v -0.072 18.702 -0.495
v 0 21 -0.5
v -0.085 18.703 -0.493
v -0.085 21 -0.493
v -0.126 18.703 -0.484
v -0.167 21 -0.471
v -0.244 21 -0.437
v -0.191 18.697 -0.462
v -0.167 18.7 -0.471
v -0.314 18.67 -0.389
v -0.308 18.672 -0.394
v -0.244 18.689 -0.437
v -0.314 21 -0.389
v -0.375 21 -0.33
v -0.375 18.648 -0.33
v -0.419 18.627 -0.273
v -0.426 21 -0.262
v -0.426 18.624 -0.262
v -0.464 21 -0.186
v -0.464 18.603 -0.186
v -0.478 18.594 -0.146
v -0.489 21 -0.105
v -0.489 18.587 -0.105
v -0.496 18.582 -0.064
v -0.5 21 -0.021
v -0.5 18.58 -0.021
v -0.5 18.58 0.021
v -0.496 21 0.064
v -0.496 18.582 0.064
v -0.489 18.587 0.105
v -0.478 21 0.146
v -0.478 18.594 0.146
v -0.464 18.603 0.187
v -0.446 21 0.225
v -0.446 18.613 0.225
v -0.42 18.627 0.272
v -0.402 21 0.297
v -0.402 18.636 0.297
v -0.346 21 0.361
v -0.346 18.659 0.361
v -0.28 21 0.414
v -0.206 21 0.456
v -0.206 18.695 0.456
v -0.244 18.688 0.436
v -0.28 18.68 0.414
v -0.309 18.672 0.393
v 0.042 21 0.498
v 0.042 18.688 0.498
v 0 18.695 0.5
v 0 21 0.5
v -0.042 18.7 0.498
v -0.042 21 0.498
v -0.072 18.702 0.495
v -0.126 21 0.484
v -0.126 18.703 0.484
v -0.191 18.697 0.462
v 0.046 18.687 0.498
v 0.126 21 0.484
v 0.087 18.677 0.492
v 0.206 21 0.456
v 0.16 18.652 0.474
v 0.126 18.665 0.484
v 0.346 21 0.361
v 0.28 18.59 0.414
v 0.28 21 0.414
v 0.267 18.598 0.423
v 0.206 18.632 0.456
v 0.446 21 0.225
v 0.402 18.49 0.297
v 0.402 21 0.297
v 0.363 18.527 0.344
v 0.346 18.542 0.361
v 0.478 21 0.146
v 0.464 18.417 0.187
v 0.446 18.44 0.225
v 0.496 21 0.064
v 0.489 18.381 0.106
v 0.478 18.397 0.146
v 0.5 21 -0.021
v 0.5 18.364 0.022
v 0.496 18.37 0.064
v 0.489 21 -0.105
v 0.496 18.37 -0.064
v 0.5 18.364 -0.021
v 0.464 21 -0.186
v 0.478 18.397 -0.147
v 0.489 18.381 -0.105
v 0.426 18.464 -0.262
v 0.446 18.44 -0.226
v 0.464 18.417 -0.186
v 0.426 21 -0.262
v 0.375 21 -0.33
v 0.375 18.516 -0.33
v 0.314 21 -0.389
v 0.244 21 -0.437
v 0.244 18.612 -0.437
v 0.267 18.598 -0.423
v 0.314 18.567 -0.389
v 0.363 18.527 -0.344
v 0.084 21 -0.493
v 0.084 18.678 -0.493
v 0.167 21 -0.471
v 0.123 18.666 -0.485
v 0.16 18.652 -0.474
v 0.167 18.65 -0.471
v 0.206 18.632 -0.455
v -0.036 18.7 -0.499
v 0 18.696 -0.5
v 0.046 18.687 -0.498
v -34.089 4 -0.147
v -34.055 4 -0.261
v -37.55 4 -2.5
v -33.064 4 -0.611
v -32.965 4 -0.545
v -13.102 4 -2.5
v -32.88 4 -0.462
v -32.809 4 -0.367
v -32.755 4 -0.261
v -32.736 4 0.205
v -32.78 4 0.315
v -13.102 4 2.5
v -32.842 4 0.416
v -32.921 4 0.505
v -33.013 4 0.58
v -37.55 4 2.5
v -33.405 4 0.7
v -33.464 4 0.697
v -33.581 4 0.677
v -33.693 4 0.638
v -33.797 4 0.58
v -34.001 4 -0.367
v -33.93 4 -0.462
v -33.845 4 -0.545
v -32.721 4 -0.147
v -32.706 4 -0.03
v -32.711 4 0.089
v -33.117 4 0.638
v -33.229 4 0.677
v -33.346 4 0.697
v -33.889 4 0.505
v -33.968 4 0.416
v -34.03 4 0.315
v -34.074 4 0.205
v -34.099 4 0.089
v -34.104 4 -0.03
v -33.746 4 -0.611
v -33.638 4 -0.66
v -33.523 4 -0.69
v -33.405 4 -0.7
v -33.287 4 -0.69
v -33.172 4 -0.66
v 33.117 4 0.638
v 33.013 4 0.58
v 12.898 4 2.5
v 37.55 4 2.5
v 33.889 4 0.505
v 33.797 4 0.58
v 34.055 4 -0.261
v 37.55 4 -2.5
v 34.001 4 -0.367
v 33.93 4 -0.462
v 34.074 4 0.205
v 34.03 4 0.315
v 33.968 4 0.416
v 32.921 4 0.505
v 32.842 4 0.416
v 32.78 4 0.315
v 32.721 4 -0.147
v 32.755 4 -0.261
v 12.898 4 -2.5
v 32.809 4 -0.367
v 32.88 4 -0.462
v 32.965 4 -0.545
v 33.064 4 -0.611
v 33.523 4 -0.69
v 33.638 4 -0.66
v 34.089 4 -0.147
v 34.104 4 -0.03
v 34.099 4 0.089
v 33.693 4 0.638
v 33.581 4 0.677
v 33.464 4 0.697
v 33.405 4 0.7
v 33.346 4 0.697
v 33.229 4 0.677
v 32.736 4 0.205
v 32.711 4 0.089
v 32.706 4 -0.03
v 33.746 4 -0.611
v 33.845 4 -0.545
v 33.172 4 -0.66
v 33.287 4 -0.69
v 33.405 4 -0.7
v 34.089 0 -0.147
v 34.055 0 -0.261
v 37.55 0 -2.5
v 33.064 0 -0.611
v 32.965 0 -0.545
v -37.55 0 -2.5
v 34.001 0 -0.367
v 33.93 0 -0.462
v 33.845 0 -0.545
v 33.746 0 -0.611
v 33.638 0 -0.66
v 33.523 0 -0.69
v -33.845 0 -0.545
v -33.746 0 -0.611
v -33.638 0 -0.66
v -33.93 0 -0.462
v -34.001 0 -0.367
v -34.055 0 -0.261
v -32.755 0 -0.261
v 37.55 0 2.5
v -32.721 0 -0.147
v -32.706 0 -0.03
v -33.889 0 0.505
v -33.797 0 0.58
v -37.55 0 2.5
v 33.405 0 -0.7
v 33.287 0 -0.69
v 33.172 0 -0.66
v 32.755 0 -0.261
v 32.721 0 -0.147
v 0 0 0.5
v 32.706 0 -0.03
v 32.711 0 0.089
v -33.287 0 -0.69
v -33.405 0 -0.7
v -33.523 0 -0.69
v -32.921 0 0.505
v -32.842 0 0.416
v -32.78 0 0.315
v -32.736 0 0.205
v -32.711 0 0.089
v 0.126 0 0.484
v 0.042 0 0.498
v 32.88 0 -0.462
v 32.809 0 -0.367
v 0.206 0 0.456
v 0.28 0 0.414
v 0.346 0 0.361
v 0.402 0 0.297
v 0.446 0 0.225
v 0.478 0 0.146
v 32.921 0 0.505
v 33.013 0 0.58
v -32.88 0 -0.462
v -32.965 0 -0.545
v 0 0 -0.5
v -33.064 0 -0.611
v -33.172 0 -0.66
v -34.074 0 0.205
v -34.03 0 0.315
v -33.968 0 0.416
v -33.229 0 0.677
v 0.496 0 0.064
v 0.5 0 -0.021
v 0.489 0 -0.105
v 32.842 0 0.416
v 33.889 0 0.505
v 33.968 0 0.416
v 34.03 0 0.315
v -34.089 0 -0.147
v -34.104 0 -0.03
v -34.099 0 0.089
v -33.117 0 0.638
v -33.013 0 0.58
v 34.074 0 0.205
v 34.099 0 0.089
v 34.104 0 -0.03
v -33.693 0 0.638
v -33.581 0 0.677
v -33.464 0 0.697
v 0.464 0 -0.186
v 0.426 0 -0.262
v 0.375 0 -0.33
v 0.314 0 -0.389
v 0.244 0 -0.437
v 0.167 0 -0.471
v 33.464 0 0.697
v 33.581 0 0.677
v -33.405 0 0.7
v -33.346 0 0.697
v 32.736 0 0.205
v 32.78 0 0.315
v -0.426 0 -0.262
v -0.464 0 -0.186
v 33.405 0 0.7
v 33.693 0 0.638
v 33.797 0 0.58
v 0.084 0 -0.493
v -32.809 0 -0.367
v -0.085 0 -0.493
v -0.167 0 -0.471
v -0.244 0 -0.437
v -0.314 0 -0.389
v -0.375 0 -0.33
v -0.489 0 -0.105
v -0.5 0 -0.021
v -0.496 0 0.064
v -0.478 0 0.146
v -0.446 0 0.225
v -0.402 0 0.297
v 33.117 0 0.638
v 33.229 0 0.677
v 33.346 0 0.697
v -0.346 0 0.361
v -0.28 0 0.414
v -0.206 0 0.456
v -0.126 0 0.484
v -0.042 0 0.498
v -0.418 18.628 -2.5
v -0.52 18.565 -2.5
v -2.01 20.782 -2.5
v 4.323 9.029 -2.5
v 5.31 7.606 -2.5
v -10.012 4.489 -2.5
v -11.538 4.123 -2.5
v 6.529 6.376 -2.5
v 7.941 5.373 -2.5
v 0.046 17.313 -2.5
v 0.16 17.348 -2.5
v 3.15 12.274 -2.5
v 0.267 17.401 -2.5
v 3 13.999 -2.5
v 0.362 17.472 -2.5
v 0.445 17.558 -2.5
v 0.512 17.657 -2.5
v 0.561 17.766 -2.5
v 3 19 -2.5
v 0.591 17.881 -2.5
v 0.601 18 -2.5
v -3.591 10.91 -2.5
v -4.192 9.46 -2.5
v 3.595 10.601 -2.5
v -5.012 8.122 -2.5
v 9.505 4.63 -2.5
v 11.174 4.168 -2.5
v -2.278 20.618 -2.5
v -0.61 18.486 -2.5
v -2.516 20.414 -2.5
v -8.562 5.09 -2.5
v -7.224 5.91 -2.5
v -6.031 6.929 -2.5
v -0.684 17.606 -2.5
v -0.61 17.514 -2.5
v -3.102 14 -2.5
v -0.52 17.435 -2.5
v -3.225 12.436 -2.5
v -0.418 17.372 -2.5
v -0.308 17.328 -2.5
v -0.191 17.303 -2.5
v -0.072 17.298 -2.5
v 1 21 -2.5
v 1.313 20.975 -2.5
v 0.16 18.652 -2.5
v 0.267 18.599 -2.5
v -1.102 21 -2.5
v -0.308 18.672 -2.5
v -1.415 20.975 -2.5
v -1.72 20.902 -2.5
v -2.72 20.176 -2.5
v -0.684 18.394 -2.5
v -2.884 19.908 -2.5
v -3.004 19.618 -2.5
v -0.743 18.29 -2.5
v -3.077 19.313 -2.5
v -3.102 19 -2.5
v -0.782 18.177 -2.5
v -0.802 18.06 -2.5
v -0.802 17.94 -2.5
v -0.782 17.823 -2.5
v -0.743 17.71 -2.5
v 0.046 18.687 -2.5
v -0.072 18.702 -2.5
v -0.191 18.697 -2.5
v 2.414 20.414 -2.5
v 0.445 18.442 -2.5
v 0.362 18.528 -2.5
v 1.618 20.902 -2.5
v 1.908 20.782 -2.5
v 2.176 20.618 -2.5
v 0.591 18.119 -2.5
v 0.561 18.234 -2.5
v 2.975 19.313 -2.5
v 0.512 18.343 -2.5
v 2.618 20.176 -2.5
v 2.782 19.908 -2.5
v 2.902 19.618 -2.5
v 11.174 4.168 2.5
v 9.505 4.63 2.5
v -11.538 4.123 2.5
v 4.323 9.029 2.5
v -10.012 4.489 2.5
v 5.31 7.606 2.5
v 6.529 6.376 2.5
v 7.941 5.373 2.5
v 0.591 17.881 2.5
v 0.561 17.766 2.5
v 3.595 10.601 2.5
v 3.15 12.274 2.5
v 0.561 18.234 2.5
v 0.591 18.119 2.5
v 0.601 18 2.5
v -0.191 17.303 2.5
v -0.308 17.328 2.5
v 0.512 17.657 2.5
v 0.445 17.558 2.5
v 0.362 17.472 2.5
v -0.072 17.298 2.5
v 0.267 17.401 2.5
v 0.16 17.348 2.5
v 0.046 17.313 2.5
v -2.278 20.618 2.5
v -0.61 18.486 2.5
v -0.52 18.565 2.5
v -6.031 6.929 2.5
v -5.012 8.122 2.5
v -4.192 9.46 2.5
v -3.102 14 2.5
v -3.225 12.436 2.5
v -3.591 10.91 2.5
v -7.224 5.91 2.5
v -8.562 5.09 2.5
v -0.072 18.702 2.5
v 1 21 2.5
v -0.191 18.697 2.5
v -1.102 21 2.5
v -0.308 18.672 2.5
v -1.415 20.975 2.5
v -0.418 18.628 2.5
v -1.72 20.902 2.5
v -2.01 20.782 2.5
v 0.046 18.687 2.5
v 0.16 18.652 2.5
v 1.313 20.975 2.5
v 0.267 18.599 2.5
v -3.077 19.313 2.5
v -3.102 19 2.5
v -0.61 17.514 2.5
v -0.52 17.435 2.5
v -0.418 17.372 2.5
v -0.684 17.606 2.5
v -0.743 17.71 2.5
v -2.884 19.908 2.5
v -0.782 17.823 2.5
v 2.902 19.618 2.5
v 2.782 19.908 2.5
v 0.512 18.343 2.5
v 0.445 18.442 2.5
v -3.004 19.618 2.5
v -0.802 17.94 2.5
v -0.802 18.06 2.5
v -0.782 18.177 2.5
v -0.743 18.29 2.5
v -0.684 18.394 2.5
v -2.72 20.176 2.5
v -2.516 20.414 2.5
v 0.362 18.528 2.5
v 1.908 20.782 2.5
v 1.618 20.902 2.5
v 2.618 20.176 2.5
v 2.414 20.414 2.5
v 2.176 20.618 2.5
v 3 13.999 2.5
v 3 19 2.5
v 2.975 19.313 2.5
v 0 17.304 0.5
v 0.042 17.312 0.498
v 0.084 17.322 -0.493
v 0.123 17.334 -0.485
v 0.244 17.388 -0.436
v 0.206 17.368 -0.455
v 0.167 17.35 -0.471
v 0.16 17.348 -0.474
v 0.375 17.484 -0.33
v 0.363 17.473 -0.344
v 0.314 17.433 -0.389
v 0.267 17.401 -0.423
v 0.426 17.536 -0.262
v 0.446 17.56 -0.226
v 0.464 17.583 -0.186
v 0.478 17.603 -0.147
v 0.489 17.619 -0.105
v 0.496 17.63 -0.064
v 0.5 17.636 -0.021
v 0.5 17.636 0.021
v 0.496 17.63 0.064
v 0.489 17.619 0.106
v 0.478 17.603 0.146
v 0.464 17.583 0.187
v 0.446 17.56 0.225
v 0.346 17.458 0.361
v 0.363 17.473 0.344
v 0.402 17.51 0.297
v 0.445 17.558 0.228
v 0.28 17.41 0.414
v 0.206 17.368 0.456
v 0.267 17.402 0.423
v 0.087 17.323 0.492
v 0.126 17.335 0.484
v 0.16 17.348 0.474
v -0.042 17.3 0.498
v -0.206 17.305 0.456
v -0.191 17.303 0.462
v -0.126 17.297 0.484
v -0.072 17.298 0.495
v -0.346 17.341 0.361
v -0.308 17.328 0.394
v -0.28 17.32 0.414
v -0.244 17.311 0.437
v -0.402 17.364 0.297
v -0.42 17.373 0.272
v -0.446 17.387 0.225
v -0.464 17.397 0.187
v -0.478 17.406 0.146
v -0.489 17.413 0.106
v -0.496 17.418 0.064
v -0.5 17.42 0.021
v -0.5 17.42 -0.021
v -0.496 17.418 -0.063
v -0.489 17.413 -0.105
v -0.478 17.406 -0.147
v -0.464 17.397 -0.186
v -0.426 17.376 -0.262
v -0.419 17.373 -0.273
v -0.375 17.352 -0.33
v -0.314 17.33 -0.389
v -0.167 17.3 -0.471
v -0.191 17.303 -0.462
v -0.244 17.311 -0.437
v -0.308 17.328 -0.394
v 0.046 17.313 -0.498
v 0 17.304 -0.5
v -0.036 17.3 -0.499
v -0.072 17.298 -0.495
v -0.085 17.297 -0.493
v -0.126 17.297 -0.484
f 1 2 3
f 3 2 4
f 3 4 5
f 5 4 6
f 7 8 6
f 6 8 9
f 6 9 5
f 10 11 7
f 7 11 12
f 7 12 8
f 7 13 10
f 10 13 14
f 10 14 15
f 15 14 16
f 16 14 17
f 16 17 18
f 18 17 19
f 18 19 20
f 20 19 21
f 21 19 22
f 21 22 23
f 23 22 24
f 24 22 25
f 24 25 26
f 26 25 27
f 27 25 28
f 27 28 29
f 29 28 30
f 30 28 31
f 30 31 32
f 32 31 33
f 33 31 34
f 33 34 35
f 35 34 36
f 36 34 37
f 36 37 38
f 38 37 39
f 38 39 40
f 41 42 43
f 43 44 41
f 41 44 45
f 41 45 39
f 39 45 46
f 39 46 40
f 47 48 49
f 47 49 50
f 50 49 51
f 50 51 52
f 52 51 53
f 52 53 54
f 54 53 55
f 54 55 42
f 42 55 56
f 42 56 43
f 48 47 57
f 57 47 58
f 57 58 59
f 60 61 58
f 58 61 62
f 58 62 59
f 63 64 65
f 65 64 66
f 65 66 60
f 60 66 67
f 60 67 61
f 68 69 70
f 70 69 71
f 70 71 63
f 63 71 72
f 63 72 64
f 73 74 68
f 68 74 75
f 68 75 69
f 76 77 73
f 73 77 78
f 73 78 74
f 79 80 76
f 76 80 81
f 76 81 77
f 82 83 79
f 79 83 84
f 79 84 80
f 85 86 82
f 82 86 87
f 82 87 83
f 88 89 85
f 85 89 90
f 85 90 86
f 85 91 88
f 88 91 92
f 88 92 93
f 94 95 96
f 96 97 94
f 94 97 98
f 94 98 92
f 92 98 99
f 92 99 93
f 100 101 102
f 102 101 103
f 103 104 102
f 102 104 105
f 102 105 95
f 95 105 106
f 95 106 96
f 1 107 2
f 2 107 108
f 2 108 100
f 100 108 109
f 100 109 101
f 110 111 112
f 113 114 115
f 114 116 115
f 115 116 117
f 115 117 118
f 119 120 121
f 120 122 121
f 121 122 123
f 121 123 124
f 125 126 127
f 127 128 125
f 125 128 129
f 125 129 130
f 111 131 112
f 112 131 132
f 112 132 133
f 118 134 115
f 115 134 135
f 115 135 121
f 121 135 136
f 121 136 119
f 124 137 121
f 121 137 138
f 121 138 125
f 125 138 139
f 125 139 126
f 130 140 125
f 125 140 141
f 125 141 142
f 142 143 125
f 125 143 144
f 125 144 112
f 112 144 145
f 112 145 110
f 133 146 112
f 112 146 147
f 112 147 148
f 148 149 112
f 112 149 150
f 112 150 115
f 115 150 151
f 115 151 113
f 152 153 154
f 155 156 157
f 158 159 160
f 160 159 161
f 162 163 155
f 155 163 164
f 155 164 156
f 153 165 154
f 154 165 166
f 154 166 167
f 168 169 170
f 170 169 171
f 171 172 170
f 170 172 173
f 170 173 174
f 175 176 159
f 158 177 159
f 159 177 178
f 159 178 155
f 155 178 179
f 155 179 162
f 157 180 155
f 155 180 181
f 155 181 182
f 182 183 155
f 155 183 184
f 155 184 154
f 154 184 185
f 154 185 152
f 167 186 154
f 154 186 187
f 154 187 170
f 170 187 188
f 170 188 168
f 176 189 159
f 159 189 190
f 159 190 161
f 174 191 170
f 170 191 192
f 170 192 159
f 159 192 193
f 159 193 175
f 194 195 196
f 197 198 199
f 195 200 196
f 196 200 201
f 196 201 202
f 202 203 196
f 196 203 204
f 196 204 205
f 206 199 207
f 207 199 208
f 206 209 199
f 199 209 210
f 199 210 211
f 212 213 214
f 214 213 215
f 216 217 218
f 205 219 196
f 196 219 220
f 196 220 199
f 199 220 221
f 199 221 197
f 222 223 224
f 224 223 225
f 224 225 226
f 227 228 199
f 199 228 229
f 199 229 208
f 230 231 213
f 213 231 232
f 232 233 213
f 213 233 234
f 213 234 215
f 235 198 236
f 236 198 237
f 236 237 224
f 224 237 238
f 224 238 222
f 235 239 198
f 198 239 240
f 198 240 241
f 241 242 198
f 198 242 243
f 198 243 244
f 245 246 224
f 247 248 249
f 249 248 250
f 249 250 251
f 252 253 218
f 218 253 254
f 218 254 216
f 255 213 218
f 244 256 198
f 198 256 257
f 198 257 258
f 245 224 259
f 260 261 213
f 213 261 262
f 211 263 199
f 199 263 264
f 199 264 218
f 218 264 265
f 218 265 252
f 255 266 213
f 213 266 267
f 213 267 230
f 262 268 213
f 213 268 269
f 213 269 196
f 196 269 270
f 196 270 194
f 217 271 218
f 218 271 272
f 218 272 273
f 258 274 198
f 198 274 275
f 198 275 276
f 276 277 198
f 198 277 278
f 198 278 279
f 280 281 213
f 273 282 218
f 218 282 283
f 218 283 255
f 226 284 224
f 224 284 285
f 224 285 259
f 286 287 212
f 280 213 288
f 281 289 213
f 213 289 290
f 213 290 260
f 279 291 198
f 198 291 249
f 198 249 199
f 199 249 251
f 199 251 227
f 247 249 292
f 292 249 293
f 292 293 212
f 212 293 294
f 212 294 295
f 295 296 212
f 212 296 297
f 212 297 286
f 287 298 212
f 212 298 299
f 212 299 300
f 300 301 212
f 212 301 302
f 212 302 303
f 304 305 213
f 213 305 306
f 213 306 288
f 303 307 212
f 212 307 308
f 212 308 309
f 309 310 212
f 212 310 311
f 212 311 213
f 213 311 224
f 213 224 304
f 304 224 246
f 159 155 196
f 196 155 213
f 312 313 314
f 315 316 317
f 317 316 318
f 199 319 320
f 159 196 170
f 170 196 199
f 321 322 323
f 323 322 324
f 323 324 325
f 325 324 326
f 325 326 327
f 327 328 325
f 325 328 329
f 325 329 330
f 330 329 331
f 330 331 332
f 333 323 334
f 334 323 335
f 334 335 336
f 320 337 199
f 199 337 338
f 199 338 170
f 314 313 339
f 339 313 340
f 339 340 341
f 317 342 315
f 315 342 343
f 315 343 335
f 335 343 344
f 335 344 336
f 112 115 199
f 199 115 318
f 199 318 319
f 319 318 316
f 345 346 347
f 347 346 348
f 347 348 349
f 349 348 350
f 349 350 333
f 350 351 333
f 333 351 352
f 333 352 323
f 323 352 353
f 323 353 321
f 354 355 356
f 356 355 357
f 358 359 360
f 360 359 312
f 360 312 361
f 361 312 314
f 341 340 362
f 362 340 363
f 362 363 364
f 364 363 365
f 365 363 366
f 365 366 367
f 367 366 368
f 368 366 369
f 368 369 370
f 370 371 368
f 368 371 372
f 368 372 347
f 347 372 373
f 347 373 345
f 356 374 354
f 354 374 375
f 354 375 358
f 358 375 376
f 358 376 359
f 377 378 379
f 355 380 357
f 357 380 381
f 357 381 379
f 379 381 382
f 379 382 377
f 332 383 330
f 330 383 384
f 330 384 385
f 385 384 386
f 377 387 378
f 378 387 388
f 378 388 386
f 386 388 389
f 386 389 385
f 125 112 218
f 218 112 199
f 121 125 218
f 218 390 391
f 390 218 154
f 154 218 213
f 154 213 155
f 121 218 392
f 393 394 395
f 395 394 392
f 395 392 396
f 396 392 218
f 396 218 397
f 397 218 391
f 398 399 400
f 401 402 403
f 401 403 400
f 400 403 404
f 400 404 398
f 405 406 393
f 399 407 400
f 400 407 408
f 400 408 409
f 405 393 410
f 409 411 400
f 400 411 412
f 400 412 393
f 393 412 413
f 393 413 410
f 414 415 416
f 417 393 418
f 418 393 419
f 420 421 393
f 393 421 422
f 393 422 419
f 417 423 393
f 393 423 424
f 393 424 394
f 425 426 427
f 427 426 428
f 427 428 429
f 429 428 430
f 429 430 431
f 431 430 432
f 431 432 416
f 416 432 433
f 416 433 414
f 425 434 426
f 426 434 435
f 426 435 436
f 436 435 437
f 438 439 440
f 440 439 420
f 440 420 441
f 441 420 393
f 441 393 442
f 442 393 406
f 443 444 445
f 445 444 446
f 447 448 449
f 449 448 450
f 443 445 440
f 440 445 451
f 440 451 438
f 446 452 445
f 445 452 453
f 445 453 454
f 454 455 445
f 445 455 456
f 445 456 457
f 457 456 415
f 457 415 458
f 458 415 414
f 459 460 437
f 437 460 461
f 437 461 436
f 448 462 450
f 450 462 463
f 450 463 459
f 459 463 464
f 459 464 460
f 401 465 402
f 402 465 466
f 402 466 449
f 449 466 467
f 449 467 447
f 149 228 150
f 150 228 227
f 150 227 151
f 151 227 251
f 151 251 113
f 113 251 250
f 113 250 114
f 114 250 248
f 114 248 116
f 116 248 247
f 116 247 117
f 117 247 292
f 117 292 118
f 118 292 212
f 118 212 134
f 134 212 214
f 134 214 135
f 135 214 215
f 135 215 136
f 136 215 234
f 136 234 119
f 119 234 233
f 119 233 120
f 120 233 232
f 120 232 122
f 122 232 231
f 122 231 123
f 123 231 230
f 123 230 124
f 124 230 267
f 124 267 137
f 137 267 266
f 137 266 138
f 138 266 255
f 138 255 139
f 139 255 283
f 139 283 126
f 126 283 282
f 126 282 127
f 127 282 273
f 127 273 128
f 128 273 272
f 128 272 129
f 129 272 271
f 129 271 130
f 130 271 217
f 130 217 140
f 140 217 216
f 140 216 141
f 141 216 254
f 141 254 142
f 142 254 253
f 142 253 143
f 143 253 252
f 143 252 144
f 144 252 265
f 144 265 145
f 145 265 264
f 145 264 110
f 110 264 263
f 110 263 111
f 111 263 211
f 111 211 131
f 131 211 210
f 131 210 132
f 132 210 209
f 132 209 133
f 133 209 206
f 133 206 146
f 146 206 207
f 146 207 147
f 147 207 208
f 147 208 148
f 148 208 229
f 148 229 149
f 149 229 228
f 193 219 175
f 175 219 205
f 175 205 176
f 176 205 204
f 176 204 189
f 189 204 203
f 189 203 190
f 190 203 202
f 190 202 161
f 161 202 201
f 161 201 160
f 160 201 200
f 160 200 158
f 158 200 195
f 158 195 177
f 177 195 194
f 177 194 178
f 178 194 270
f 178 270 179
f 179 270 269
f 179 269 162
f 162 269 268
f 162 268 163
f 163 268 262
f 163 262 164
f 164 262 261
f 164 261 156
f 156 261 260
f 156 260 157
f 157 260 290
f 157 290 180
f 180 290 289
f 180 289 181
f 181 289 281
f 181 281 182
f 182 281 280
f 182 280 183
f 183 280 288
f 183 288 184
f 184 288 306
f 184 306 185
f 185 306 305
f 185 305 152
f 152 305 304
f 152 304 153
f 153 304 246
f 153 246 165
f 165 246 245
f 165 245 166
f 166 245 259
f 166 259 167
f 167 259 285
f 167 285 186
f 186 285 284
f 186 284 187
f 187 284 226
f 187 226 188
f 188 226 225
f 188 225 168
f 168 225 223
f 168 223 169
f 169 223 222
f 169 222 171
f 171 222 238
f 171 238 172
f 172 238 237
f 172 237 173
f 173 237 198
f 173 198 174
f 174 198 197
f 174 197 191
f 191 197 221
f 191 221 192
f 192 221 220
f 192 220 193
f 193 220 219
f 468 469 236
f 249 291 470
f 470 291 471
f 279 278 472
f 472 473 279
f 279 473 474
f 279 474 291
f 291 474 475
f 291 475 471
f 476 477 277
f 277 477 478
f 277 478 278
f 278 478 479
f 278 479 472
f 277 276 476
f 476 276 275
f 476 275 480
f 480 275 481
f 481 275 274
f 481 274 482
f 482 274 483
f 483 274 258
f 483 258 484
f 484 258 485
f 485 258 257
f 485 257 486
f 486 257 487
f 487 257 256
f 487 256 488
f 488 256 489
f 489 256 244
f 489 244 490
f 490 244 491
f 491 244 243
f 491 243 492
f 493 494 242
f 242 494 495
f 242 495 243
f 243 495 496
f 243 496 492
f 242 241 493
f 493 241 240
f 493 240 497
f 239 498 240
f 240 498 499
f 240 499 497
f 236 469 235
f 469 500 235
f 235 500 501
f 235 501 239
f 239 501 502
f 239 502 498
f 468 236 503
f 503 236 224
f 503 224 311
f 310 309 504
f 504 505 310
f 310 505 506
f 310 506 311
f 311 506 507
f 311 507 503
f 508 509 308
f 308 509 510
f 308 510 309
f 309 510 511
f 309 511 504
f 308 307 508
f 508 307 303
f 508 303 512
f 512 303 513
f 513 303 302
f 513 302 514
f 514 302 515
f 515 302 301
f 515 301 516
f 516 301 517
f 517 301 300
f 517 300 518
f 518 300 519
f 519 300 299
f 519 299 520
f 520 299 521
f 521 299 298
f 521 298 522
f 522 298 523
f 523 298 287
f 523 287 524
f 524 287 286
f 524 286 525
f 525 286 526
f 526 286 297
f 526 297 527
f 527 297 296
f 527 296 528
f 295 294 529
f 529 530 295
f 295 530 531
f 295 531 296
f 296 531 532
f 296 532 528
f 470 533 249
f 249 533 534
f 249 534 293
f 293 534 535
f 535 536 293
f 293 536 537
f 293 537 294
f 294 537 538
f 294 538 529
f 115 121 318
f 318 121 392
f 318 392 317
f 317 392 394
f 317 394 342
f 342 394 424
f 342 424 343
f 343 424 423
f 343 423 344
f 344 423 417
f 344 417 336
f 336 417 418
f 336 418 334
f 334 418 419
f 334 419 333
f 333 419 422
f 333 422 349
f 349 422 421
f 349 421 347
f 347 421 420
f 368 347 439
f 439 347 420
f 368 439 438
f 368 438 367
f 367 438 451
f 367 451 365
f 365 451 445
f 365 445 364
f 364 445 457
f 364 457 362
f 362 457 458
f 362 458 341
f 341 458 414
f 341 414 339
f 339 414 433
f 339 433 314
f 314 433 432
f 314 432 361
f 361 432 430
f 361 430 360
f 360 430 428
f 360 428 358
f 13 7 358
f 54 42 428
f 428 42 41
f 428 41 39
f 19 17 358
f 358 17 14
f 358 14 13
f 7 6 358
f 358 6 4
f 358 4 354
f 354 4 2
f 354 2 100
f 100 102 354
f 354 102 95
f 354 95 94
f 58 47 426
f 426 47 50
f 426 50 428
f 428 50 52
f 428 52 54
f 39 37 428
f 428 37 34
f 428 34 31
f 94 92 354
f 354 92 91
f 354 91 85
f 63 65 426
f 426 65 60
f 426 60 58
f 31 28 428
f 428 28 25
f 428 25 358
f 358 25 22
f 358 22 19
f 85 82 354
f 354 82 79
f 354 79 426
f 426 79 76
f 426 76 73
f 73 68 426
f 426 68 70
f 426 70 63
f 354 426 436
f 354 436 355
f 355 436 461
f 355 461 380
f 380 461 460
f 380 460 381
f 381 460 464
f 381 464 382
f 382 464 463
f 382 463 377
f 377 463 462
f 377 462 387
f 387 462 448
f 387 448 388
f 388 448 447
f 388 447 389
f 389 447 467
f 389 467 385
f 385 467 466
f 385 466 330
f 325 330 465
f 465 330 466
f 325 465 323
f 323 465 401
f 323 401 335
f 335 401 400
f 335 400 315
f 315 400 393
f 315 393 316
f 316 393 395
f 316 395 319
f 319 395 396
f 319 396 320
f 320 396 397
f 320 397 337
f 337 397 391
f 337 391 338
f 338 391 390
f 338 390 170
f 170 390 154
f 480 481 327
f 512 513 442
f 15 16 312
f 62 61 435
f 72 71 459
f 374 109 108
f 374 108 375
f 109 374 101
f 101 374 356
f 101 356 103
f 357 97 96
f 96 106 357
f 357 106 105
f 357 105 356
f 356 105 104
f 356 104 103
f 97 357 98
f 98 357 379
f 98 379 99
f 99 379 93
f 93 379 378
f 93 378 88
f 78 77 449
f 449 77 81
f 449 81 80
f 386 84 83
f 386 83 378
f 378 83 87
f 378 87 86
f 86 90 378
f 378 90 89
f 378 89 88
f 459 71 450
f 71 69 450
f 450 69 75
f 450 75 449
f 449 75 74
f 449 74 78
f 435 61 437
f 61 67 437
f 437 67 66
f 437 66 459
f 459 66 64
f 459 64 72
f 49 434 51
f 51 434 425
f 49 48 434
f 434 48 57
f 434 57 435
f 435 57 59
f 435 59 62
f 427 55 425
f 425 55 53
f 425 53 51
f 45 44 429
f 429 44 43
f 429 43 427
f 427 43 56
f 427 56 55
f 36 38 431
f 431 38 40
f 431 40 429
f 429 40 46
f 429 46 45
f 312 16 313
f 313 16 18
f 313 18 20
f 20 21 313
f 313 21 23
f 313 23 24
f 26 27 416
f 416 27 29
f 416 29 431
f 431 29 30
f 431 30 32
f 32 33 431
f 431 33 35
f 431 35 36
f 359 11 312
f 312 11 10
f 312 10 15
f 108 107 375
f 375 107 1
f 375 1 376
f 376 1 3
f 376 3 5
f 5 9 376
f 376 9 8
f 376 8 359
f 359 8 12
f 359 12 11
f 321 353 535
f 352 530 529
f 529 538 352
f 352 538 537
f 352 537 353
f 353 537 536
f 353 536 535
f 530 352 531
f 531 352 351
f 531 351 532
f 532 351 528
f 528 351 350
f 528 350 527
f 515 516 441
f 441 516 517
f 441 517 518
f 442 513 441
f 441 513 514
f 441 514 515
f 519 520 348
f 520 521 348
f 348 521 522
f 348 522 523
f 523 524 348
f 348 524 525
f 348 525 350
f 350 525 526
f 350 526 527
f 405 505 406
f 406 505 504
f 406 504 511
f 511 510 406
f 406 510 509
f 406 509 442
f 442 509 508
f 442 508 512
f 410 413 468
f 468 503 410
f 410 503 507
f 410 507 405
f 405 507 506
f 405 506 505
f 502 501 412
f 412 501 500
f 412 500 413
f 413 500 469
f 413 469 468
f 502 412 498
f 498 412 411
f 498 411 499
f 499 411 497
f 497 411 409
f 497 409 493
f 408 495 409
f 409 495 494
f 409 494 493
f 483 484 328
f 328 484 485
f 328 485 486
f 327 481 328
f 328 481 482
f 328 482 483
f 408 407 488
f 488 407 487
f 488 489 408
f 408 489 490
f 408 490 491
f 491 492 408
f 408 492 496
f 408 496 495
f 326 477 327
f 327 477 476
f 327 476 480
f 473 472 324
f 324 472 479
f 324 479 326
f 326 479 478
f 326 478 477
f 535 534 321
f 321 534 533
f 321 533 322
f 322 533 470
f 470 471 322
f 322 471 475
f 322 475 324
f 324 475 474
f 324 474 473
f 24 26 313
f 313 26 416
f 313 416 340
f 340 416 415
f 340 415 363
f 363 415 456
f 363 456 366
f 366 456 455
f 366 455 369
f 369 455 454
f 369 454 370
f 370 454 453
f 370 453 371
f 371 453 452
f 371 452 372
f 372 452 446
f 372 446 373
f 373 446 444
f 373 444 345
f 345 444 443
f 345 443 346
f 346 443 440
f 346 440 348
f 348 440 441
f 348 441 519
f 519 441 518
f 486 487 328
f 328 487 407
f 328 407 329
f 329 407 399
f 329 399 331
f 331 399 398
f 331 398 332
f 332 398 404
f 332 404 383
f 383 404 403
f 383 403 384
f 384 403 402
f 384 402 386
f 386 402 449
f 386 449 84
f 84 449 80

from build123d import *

# Parameters (mm, degrees)
SKETCH1_W           = 75.1
SKETCH1_H           = 5
SKETCH1_R           = 0.7
SKETCH1_R_2         = 0.5
BOSS_EXTRUDE1_DEPTH = 4
BOSS_EXTRUDE2_DEPTH = 5
SKETCH4_R           = 0.5
CUT_EXTRUDE1_DEPTH  = 33
SKETCH5_R           = 0.702970984
CUT_EXTRUDE2_DEPTH  = 10


with BuildPart() as part:
    # Sketch1 → Boss-Extrude1 (new body)
    with BuildSketch(Plane(origin=(0, 0, 0), x_dir=(1, 0, 0), z_dir=(0, 1, 0))):
        Rectangle(SKETCH1_W, SKETCH1_H)
        with Locations(Location((-33.405, 0, 0), (0, 0, 270))):
            Circle(SKETCH1_R, mode=Mode.SUBTRACT)
        with Locations(Location((33.405, 0, 0), (0, 0, 270))):
            Circle(SKETCH1_R, mode=Mode.SUBTRACT)
        with Locations(Location((0, 0, 0), (0, 0, 270))):
            Circle(SKETCH1_R_2, mode=Mode.SUBTRACT)
    extrude(amount=BOSS_EXTRUDE1_DEPTH)

    # Sketch3 → Boss-Extrude2 (add)
    with BuildSketch(Plane.XY.offset(2.5)):
        with BuildLine():
            Line((-13.101977393, 4), (12.898022607, 4))
            ThreePointArc((12.898022607, 4), (5.892969188, 6.964559048), (3, 13.999480017))
            Line((3, 13.999480017), (3, 19))
            ThreePointArc((3, 19), (2.414213562, 20.414213562), (1, 21))
            Line((1, 21), (-1.101977393, 21))
            ThreePointArc((-1.101977393, 21), (-2.516190955, 20.414213562), (-3.101977393, 19))
            Line((-3.101977393, 19), (-3.101977393, 14))
            ThreePointArc((-3.101977393, 14), (-6.030909581, 6.928932188), (-13.101977393, 4))
        make_face()
    extrude(amount=-BOSS_EXTRUDE2_DEPTH)

    # Sketch4 → Cut-Extrude1 (cut)
    with BuildSketch(Plane.XZ):
        with Locations(Location((0, 0, 0), (0, 0, 90))):
            Circle(SKETCH4_R)
    extrude(amount=-CUT_EXTRUDE1_DEPTH, mode=Mode.SUBTRACT)

    # Sketch5 → Cut-Extrude2 (cut)
    with BuildSketch(Plane.XY.offset(2.5)):
        with Locations((-0.101977393, 18)):
            Circle(SKETCH5_R)
    extrude(amount=-CUT_EXTRUDE2_DEPTH, mode=Mode.SUBTRACT)


solid = part.part
